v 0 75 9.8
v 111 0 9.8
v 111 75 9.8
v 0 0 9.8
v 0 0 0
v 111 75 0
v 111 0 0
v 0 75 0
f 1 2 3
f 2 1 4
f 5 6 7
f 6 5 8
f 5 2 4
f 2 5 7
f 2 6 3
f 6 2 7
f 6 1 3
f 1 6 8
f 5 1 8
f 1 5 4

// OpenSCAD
// Opentrons Universal Flat Heater-Shaker Adapter Type B
// loadName: opentrons_universal_flat_adapter_type_b
// Auto-generated by labware_to_stl.py from Opentrons V2 labware definition

$fn = 64;

difference() {
    // ── Labware body ──────────────────────────────────────────────
    cube([111.0000, 75.0000, 9.8000]);

    // ── Well cutouts ──────────────────────────────────────────────
}
